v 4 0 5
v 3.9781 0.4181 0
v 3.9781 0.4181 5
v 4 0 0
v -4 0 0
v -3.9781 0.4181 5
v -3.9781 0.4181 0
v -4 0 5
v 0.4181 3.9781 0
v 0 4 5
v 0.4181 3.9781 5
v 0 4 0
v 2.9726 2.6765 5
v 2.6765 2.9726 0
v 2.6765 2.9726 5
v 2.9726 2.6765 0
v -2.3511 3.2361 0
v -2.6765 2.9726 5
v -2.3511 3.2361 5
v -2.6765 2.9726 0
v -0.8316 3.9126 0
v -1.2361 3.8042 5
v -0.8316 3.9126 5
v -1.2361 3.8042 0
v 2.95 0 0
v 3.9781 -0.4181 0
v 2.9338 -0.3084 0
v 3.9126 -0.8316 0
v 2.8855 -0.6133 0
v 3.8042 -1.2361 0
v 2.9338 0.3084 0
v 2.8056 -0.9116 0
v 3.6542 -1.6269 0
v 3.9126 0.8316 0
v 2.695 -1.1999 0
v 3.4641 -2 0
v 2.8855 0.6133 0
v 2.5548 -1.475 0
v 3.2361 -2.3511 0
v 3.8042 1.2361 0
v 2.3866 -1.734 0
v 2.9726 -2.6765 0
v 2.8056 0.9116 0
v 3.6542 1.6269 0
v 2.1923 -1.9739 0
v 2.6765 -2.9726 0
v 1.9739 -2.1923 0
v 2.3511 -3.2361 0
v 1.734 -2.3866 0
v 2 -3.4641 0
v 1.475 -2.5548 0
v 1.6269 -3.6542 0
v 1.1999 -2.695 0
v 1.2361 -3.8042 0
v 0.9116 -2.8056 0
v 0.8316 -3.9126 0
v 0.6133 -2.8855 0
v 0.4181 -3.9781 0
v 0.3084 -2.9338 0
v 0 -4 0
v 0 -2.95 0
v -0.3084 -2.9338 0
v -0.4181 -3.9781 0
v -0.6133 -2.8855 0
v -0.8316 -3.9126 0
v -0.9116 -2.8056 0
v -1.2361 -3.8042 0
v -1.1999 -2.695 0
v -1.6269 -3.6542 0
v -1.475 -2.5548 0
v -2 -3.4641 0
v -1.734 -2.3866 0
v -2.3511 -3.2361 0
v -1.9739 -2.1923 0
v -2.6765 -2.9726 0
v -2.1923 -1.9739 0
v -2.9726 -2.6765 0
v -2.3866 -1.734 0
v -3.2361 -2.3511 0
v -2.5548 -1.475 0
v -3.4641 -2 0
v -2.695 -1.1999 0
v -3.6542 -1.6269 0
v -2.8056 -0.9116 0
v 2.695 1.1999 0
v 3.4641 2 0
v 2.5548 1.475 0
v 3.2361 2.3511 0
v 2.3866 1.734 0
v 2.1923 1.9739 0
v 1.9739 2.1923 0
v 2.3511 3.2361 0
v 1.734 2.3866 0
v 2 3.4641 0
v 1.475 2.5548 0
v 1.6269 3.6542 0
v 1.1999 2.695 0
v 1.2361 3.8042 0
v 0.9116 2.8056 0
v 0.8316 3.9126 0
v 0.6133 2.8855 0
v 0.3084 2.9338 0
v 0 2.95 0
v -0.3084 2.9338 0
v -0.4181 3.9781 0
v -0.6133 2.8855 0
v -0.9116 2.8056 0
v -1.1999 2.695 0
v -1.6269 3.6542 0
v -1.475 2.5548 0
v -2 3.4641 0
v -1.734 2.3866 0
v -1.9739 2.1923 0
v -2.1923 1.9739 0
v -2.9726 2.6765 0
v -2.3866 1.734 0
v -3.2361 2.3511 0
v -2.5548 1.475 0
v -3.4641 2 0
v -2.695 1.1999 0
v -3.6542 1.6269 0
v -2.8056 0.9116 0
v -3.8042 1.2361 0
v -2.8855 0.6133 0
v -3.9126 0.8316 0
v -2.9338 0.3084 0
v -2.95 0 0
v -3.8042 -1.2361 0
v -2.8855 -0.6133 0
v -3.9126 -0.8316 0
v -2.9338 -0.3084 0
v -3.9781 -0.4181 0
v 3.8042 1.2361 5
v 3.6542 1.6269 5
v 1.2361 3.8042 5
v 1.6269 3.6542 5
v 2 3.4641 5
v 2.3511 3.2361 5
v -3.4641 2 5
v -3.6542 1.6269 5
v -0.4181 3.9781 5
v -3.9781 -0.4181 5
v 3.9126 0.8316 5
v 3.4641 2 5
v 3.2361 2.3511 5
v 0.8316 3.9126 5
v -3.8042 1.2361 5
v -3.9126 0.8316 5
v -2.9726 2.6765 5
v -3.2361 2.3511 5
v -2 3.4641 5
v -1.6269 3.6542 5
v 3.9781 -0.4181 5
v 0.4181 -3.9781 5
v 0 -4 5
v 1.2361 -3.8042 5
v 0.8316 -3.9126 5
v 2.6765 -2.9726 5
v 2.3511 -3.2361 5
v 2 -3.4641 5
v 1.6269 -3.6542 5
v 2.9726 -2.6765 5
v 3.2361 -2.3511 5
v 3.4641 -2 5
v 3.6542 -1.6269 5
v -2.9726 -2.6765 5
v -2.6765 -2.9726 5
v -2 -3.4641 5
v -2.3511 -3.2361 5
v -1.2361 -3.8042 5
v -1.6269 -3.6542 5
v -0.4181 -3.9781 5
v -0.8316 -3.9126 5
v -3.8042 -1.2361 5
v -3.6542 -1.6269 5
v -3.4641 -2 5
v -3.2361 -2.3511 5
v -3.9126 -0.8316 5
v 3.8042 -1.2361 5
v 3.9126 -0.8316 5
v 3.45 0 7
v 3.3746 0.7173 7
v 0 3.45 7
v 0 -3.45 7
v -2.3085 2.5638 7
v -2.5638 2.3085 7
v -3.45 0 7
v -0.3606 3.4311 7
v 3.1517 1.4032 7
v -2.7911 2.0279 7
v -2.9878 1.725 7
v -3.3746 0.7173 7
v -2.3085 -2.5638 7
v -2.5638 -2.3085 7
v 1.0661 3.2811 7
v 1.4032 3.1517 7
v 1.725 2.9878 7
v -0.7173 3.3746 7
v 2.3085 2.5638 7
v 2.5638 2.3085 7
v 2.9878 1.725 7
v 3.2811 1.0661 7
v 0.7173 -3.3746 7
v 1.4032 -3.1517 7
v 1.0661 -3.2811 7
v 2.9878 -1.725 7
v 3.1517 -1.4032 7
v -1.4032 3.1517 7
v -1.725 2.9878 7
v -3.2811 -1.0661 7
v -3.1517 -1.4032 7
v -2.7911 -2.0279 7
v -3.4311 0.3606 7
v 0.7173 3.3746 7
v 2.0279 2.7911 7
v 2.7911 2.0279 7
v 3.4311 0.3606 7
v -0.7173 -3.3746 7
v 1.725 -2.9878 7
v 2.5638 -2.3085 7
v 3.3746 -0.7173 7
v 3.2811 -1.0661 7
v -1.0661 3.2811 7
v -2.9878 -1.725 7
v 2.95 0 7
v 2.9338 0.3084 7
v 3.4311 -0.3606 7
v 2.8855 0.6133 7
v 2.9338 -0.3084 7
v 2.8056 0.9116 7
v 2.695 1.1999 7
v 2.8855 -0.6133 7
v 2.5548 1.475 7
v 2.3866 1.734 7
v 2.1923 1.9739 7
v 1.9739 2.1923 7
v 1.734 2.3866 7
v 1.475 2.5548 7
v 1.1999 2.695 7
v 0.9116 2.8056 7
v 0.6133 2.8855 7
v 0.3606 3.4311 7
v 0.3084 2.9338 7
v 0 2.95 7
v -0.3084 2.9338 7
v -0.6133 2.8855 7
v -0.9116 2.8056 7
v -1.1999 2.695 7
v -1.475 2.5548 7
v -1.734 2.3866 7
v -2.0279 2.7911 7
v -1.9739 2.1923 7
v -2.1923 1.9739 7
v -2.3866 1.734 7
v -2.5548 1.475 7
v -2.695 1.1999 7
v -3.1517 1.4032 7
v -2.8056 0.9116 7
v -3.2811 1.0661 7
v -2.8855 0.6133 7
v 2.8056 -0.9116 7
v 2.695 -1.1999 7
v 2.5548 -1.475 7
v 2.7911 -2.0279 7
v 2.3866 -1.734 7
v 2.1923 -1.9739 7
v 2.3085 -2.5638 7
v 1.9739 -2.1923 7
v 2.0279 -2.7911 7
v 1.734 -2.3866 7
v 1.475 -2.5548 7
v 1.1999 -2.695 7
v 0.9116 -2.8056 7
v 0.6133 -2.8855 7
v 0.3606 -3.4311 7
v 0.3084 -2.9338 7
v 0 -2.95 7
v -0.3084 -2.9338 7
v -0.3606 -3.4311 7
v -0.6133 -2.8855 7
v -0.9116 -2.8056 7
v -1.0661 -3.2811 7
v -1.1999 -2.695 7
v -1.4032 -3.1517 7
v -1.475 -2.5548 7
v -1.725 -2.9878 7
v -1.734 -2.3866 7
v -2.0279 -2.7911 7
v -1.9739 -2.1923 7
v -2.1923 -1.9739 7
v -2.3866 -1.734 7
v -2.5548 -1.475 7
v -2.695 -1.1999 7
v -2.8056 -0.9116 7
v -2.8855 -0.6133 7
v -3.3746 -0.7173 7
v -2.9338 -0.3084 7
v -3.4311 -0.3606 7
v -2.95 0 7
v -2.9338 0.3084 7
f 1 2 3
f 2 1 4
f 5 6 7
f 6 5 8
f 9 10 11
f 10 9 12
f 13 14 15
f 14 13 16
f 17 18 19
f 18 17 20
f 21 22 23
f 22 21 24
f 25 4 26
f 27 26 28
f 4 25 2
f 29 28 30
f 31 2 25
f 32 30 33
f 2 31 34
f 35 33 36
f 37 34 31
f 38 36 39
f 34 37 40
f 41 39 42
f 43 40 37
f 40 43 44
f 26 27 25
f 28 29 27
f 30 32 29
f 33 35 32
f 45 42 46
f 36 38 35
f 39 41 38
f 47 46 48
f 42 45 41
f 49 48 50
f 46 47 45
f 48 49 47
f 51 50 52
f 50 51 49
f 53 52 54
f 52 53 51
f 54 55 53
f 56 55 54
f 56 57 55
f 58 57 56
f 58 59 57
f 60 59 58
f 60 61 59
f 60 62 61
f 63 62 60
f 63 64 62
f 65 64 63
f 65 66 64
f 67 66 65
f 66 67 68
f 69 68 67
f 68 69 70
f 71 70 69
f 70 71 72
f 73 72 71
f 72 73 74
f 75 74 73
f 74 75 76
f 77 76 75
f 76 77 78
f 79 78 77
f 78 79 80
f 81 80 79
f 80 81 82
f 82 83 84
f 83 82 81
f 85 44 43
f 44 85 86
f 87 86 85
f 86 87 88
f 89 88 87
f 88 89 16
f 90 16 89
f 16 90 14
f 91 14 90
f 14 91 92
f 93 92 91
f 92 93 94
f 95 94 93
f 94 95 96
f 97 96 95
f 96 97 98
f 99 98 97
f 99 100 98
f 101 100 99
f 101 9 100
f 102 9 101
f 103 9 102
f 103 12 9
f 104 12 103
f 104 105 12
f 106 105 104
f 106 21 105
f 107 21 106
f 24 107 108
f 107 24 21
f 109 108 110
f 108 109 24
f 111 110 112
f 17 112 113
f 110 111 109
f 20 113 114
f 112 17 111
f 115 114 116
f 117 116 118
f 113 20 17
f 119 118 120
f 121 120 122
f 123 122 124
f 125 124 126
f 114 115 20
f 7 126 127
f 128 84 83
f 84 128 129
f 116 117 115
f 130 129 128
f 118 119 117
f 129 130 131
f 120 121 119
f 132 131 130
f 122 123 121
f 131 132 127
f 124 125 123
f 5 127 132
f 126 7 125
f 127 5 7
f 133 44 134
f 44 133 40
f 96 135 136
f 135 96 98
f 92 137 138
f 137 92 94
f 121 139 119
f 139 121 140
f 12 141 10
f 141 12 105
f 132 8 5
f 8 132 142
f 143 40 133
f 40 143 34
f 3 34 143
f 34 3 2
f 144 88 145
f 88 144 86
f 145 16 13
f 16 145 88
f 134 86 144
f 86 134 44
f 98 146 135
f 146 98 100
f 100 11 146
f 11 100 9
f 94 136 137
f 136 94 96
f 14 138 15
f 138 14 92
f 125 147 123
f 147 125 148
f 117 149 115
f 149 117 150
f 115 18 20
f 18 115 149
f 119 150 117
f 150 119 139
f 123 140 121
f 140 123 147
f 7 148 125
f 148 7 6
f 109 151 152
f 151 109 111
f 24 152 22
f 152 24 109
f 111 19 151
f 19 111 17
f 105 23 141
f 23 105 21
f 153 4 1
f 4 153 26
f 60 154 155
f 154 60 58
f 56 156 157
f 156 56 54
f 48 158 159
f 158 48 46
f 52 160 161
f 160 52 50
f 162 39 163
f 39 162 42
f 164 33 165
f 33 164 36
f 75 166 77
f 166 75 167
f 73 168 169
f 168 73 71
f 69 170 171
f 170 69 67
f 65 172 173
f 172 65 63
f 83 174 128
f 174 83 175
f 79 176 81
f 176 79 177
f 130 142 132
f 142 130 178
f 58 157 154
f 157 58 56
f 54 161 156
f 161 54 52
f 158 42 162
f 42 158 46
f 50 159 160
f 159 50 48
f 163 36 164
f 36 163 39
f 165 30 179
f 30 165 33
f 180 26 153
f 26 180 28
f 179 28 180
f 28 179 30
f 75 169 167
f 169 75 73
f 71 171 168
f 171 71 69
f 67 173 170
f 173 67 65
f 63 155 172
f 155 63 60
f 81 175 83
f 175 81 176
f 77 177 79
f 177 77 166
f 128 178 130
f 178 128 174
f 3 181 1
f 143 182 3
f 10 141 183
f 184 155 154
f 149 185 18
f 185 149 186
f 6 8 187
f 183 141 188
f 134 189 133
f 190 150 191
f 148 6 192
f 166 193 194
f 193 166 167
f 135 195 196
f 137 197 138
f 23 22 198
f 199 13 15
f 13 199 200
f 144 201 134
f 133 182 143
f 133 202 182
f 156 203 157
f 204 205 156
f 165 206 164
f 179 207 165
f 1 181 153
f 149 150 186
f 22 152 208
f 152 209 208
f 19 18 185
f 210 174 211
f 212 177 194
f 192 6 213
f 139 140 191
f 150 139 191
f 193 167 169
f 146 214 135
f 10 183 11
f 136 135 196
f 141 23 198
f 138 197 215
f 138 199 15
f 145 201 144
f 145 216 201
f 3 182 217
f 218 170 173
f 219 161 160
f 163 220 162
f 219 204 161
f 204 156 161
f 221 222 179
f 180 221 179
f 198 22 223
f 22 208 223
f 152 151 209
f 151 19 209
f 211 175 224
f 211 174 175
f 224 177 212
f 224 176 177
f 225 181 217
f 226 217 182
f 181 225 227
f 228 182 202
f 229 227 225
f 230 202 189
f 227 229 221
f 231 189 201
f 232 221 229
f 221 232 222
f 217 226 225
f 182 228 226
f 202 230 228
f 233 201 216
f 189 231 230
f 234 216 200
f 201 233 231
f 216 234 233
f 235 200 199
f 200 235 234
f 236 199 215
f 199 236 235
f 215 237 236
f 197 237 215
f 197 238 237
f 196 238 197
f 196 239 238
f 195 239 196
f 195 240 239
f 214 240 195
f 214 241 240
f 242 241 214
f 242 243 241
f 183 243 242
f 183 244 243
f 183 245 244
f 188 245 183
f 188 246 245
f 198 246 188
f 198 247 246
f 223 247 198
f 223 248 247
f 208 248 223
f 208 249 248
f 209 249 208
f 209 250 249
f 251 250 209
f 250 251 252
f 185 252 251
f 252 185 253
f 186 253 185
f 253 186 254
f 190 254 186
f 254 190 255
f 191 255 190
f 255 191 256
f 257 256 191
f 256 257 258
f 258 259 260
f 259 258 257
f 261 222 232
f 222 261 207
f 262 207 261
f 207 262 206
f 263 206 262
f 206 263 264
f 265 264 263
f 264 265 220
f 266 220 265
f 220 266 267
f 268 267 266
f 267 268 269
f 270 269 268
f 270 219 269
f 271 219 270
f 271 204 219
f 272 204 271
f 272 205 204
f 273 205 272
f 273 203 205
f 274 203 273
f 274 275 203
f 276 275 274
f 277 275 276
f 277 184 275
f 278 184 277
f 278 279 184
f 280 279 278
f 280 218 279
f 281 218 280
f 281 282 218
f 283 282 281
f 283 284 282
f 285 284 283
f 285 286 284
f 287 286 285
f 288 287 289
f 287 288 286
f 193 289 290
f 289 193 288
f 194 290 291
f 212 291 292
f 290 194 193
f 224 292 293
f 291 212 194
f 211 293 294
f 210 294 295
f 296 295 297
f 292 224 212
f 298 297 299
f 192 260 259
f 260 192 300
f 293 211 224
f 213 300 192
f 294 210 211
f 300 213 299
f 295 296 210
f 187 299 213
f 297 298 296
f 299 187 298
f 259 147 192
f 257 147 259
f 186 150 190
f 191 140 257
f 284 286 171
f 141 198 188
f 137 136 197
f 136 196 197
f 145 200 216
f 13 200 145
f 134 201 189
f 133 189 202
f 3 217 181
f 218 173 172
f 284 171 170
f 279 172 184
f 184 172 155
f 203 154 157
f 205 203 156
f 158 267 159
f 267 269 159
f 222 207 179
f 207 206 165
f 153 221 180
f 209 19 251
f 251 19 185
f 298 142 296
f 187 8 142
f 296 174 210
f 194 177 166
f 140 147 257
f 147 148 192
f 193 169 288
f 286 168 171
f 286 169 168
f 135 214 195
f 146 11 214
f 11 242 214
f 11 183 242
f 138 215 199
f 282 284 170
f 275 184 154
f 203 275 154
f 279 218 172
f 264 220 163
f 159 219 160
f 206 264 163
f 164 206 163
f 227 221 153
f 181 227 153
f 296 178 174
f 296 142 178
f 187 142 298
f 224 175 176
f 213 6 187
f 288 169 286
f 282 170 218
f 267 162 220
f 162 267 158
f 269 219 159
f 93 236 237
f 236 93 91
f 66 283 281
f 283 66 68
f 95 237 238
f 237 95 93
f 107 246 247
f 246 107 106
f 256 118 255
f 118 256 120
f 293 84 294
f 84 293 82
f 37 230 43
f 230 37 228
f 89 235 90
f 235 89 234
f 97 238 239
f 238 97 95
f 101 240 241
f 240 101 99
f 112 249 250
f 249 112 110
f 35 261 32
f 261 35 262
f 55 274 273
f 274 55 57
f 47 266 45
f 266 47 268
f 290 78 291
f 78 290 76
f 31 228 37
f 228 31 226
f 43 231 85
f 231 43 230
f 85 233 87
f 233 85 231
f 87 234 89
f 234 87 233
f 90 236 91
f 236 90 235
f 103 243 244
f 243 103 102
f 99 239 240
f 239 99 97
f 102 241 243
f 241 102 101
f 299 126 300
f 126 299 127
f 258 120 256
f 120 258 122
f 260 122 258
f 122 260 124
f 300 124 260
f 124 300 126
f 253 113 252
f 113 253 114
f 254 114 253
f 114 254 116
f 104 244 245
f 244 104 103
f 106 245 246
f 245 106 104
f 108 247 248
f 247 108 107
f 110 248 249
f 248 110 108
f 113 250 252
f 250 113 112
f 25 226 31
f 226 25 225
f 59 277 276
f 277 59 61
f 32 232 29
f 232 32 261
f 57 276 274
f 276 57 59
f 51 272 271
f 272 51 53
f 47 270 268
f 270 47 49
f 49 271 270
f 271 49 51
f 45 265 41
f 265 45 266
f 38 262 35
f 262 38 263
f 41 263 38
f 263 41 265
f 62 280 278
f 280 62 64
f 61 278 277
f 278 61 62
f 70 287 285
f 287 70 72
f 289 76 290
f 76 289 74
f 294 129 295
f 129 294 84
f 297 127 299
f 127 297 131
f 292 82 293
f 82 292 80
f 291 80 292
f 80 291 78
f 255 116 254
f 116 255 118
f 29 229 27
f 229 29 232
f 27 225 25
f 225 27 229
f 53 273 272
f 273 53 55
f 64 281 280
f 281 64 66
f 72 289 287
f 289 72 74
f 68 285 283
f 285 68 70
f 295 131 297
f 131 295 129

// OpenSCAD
 
$fn=60;

screwCutout = 5.9;

outterDiameter = 8;
baseHeigth = 5;
coneHeigth = 2;

//translate([-4,-4,0]) import("/home/jklein/Projects/laserEngraver/3dParts/Wheel_spacers_alternative/files/32-Wheel_Spacer_Upgraded.STL");

difference(){
	union(){
		translate([0,0,0]) 					// Base
			cylinder(d=outterDiameter,h=baseHeigth);
		translate([0,0,baseHeigth])
			cylinder(h=coneHeigth,d1=outterDiameter,d2=screwCutout+1);
	}
	translate([0,0,0]) 					// Cut out
		cylinder(d=screwCutout,h=20,center=true);
}
	
////////////////////////////////////////////////////////////////////////////////////////////////////
module plate2Point(y,z,d){
	hull(){
		color("green") translate([0 ,(y/2) -(d/2),0]) cylinder(h=z, d=d, center=true);
		color("blue")  translate([0 ,-(y/2)+(d/2),0]) cylinder(h=z, d=d, center=true);
	}
}
////////////////////////////////////////////////////////////////////////////////////////////////////
module plate4Point(x,y,z,d){
	hull(){
		color("green") translate([(x/2)-(d/2) ,(y/2) -(d/2),0]) cylinder(h=z, d=d, center=true);
		color("blue")  translate([(x/2)-(d/2) ,-(y/2)+(d/2),0]) cylinder(h=z, d=d, center=true);
		color("red")   translate([-(x/2)+(d/2),(y/2) -(d/2),0]) cylinder(h=z, d=d, center=true);
		color("grey")  translate([-(x/2)+(d/2),-(y/2)+(d/2),0]) cylinder(h=z, d=d, center=true);
	}
}
